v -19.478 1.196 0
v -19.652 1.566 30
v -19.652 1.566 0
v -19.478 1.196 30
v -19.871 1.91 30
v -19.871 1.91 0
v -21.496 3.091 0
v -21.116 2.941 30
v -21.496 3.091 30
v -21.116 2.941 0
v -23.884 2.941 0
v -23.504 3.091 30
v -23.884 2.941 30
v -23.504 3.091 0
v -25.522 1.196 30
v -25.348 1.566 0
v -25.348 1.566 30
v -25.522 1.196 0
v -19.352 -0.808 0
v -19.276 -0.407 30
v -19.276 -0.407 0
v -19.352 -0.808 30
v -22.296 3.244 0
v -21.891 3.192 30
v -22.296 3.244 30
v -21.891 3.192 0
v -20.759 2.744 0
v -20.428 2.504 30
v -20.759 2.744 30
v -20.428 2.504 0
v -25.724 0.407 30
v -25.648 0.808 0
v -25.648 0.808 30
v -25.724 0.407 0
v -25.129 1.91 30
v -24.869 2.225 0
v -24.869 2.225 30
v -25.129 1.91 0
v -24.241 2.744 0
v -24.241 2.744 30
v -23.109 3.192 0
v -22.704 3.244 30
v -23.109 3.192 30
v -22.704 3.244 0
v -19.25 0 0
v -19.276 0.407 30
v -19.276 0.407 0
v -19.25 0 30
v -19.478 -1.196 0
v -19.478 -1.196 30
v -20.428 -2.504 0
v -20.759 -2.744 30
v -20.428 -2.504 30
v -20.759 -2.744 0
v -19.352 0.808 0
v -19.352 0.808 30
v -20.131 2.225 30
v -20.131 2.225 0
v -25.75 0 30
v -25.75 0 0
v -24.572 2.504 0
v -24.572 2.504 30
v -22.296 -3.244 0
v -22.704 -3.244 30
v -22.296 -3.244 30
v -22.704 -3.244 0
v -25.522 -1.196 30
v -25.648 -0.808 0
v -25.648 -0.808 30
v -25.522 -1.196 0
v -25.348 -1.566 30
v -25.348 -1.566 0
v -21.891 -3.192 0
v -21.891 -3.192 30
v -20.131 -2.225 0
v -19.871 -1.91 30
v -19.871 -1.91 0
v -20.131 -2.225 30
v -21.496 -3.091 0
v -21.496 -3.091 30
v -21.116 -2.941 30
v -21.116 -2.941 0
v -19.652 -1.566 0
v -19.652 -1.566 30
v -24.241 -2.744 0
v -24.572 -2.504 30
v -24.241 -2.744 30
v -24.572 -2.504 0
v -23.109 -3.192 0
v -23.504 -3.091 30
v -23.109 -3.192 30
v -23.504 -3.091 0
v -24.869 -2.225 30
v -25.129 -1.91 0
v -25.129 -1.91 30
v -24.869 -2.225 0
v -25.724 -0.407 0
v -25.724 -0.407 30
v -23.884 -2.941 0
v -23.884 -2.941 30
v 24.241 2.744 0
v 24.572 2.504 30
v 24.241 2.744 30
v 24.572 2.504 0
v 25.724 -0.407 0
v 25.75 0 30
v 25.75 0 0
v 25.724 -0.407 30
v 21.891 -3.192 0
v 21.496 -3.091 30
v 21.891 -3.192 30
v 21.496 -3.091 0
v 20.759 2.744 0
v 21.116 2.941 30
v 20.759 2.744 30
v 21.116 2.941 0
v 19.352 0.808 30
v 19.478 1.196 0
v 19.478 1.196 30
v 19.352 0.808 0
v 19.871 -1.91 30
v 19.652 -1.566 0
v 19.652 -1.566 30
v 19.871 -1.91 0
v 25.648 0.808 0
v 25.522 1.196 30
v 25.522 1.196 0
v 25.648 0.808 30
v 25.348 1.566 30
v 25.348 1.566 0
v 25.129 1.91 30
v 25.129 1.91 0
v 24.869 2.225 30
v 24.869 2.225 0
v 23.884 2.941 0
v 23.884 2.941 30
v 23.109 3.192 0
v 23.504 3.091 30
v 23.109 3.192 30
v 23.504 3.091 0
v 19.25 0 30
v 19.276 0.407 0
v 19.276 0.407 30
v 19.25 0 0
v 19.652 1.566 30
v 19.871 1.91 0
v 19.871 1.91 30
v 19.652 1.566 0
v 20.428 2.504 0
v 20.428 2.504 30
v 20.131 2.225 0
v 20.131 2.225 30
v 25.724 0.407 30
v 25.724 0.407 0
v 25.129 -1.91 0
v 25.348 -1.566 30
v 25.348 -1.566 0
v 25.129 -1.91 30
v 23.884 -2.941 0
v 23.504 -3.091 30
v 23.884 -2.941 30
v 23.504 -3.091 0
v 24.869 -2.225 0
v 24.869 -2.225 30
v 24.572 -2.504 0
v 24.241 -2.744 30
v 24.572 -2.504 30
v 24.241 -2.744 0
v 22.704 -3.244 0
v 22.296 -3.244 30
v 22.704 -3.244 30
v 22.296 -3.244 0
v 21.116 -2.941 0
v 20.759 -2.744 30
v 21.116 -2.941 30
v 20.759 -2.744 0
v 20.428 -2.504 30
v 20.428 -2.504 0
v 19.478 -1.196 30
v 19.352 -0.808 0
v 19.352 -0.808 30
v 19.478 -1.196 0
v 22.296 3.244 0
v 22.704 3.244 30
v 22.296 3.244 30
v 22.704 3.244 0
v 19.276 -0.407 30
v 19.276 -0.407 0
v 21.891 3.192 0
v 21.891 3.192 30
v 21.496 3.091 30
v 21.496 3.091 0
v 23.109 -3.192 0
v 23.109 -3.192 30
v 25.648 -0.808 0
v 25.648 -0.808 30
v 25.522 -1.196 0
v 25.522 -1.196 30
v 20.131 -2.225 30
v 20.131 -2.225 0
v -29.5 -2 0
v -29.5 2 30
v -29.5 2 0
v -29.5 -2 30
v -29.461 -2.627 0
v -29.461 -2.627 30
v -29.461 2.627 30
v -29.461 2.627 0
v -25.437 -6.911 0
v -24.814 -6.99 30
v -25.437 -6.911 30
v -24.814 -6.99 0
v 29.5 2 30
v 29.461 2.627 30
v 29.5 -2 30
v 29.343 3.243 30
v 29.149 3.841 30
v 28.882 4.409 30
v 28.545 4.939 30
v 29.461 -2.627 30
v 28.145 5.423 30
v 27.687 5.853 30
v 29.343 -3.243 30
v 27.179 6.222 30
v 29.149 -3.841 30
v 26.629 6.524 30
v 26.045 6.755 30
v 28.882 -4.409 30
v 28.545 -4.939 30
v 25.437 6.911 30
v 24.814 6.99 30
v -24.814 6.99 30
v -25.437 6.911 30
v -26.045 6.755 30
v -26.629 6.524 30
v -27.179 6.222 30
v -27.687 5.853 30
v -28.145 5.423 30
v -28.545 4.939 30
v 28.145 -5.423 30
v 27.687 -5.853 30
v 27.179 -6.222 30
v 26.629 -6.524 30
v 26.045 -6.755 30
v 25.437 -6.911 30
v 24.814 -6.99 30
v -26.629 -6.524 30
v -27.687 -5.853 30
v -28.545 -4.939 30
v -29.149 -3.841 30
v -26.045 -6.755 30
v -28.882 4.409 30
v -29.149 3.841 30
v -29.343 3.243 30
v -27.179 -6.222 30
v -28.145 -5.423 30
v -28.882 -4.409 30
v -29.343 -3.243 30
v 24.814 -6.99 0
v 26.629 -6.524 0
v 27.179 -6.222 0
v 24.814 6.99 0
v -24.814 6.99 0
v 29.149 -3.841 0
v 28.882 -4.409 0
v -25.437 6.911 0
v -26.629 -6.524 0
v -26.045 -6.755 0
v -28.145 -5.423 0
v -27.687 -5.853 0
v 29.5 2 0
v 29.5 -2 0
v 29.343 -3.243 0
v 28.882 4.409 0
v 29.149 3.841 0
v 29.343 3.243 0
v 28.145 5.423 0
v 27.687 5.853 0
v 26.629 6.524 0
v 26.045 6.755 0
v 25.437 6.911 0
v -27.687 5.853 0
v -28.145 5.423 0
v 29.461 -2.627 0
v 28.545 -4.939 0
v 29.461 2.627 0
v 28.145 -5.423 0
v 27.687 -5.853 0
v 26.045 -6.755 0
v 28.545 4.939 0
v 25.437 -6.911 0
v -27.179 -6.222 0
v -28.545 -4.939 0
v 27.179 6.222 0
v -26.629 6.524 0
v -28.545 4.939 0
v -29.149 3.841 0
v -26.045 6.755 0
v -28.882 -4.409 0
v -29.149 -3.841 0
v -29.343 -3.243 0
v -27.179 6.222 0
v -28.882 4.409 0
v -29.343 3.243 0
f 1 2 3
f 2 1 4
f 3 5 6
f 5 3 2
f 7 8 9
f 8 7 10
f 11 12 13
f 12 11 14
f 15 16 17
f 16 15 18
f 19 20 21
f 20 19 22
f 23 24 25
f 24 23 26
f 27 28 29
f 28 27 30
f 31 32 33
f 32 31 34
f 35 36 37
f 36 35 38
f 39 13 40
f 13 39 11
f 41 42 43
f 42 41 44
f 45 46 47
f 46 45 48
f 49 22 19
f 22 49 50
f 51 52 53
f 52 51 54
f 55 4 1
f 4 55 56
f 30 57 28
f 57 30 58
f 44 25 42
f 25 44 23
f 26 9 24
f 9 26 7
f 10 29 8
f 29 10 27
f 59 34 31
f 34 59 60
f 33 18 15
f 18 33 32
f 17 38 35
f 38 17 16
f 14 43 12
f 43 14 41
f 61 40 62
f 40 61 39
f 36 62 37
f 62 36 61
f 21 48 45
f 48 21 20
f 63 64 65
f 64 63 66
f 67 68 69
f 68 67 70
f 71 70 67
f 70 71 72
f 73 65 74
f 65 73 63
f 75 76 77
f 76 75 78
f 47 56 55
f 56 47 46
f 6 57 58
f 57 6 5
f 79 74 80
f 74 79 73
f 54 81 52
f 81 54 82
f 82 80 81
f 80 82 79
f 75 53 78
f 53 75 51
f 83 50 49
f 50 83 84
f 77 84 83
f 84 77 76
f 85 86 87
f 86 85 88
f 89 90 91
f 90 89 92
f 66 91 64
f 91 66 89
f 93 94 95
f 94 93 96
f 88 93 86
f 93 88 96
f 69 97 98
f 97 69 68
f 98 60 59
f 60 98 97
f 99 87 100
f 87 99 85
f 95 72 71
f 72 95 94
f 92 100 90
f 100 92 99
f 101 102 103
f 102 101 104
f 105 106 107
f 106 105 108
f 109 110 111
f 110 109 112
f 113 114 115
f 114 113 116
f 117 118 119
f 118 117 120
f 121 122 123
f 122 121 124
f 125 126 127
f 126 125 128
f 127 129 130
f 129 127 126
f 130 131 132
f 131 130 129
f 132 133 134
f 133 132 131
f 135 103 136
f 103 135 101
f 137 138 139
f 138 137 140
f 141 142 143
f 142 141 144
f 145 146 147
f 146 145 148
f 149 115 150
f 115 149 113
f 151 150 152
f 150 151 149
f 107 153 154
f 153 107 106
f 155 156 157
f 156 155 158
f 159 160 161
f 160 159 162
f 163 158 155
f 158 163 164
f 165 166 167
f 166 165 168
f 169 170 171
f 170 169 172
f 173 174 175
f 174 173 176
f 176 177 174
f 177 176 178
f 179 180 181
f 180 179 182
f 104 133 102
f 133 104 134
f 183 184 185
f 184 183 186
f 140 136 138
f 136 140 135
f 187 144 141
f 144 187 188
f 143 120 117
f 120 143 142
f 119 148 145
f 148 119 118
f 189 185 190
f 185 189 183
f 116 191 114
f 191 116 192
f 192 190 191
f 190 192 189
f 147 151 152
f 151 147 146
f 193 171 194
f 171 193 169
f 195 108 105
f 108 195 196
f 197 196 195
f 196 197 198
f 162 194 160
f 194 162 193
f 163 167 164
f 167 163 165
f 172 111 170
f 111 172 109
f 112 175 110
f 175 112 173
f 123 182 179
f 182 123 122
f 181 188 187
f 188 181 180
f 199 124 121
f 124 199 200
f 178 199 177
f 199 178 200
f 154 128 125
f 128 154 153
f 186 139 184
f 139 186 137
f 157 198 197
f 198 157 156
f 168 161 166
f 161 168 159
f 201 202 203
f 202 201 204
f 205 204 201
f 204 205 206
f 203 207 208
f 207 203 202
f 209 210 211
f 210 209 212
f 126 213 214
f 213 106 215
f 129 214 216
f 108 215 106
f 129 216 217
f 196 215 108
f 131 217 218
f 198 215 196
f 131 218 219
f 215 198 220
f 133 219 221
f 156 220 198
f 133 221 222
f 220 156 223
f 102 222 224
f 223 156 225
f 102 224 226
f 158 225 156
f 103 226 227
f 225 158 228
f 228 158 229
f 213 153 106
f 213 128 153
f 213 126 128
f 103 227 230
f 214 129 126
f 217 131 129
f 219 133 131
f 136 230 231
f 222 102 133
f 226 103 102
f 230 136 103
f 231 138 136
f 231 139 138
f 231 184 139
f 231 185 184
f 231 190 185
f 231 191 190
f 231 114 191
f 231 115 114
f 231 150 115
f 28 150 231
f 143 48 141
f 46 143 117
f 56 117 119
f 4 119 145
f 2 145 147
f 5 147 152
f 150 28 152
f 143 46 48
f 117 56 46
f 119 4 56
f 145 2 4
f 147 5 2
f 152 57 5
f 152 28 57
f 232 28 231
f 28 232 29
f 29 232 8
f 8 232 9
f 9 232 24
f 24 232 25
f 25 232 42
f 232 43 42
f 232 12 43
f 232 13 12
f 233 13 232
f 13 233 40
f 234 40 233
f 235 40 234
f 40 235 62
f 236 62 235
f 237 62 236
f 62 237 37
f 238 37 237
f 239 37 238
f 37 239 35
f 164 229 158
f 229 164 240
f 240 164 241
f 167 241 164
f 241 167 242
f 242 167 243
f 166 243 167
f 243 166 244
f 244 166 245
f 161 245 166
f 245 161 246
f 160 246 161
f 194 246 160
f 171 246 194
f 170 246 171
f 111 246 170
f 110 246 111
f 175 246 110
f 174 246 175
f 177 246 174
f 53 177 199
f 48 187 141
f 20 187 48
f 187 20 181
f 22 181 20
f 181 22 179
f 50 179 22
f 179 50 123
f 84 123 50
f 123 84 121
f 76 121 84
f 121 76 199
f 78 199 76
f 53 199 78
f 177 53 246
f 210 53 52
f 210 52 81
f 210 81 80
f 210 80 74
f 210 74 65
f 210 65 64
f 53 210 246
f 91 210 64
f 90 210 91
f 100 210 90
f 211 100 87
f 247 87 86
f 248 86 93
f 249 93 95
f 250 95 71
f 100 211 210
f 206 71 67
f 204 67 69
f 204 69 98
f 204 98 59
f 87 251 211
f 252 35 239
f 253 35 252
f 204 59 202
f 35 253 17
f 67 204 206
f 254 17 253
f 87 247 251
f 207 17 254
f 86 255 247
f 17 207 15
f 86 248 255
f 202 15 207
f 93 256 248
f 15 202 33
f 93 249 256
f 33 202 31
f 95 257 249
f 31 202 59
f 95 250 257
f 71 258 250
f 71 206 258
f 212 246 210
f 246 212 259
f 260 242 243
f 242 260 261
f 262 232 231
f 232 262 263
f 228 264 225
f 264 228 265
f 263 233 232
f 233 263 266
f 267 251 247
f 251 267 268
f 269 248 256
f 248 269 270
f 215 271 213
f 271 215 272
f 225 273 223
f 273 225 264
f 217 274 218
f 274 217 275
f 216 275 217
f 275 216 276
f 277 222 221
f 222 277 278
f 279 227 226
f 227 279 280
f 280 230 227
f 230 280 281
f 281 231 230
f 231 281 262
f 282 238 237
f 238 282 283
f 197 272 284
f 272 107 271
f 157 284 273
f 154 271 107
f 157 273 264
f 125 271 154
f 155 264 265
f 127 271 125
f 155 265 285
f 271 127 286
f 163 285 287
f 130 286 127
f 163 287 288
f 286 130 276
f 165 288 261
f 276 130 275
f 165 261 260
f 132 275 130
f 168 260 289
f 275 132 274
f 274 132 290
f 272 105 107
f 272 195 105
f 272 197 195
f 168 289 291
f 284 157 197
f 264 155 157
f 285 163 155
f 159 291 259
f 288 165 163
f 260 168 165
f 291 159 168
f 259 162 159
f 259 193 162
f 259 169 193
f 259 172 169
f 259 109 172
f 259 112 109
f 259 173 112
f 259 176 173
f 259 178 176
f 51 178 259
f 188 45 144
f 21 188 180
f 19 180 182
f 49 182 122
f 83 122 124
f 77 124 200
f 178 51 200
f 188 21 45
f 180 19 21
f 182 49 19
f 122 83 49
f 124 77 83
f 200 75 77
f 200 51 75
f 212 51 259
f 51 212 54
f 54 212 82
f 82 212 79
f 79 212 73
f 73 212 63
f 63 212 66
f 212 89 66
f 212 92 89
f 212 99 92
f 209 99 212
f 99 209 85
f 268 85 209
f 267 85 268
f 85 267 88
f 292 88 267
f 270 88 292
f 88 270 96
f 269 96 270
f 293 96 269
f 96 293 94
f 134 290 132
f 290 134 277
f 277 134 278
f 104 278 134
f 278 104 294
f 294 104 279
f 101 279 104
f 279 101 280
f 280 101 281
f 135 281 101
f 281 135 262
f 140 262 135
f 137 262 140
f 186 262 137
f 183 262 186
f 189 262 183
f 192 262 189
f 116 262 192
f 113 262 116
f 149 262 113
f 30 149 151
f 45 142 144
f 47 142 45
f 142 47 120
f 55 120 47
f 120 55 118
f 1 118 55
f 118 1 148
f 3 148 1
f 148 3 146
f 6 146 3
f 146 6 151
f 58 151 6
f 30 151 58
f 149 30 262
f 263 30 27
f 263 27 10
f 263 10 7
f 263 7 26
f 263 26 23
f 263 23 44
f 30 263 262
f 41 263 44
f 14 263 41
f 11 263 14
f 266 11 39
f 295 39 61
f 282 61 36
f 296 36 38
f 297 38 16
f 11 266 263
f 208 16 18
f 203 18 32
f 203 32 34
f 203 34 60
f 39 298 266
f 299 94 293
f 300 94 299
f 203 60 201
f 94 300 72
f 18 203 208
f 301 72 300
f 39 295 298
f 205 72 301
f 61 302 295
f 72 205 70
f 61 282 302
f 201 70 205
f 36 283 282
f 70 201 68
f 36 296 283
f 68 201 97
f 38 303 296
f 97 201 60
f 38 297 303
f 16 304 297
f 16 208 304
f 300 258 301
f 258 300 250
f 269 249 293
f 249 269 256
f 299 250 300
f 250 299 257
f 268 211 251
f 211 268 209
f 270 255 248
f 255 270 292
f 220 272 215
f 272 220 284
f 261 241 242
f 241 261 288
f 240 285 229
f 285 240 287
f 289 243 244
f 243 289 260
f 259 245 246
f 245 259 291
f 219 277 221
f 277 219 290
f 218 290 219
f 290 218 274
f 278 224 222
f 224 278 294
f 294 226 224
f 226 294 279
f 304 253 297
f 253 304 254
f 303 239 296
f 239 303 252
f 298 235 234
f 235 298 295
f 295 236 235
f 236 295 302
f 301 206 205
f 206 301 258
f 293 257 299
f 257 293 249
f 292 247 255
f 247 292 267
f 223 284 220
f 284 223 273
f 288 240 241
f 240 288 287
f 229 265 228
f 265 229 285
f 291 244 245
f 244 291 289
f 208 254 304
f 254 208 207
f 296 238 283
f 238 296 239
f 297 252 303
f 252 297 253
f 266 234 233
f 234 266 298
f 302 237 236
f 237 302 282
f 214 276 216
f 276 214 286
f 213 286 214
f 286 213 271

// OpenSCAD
$fn = 50;


difference() {
	union() {
		hull() {
			translate(v = [-24.5000000000, 2.0000000000, 0]) {
				cylinder(h = 30, r = 5);
			}
			translate(v = [24.5000000000, 2.0000000000, 0]) {
				cylinder(h = 30, r = 5);
			}
			translate(v = [-24.5000000000, -2.0000000000, 0]) {
				cylinder(h = 30, r = 5);
			}
			translate(v = [24.5000000000, -2.0000000000, 0]) {
				cylinder(h = 30, r = 5);
			}
		}
	}
	union() {
		translate(v = [-22.5000000000, 0.0000000000, 0]) {
			cylinder(h = 30, r = 3.2500000000);
		}
		translate(v = [22.5000000000, 0.0000000000, 0]) {
			cylinder(h = 30, r = 3.2500000000);
		}
		translate(v = [-22.5000000000, 0.0000000000, 0]) {
			cylinder(h = 30, r = 1.8000000000);
		}
		translate(v = [22.5000000000, 0.0000000000, 0]) {
			cylinder(h = 30, r = 1.8000000000);
		}
		translate(v = [-22.5000000000, 0.0000000000, 0]) {
			cylinder(h = 30, r = 1.8000000000);
		}
		translate(v = [22.5000000000, 0.0000000000, 0]) {
			cylinder(h = 30, r = 1.8000000000);
		}
		translate(v = [-22.5000000000, 0.0000000000, 0]) {
			cylinder(h = 30, r = 1.8000000000);
		}
		translate(v = [22.5000000000, 0.0000000000, 0]) {
			cylinder(h = 30, r = 1.8000000000);
		}
	}
}
